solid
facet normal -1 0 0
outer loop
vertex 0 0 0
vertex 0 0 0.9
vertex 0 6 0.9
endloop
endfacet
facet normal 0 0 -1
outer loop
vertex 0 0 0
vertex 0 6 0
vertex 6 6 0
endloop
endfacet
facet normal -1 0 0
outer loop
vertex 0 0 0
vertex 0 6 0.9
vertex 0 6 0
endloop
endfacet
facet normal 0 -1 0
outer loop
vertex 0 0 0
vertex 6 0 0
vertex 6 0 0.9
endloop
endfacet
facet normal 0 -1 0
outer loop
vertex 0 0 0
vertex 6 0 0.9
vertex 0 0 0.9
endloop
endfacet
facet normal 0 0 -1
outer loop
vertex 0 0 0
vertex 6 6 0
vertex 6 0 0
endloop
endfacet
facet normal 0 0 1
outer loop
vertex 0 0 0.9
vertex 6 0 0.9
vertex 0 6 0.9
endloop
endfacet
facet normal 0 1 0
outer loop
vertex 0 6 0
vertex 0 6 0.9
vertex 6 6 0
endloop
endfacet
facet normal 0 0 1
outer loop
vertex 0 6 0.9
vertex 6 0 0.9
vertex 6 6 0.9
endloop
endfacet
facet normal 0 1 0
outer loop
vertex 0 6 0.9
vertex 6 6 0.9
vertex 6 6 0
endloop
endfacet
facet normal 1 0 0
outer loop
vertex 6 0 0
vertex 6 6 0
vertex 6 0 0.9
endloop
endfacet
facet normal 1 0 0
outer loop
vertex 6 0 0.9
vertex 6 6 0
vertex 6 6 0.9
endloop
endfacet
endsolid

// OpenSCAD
/* Warning, this is a very basic generator with a lot of approximation 
input data : [VQFN, 6MX, 6x6x0.9mm, 48, , B, C04-00504B]
generated by com.zoubworld.electronics.cad.model3d.Basic
Date : Sun Feb 15 10:50:48 CET 2026
*/

//body
color("black")
translate([0,0,0])
cube([6.0,6.0,0.9], center=false);
